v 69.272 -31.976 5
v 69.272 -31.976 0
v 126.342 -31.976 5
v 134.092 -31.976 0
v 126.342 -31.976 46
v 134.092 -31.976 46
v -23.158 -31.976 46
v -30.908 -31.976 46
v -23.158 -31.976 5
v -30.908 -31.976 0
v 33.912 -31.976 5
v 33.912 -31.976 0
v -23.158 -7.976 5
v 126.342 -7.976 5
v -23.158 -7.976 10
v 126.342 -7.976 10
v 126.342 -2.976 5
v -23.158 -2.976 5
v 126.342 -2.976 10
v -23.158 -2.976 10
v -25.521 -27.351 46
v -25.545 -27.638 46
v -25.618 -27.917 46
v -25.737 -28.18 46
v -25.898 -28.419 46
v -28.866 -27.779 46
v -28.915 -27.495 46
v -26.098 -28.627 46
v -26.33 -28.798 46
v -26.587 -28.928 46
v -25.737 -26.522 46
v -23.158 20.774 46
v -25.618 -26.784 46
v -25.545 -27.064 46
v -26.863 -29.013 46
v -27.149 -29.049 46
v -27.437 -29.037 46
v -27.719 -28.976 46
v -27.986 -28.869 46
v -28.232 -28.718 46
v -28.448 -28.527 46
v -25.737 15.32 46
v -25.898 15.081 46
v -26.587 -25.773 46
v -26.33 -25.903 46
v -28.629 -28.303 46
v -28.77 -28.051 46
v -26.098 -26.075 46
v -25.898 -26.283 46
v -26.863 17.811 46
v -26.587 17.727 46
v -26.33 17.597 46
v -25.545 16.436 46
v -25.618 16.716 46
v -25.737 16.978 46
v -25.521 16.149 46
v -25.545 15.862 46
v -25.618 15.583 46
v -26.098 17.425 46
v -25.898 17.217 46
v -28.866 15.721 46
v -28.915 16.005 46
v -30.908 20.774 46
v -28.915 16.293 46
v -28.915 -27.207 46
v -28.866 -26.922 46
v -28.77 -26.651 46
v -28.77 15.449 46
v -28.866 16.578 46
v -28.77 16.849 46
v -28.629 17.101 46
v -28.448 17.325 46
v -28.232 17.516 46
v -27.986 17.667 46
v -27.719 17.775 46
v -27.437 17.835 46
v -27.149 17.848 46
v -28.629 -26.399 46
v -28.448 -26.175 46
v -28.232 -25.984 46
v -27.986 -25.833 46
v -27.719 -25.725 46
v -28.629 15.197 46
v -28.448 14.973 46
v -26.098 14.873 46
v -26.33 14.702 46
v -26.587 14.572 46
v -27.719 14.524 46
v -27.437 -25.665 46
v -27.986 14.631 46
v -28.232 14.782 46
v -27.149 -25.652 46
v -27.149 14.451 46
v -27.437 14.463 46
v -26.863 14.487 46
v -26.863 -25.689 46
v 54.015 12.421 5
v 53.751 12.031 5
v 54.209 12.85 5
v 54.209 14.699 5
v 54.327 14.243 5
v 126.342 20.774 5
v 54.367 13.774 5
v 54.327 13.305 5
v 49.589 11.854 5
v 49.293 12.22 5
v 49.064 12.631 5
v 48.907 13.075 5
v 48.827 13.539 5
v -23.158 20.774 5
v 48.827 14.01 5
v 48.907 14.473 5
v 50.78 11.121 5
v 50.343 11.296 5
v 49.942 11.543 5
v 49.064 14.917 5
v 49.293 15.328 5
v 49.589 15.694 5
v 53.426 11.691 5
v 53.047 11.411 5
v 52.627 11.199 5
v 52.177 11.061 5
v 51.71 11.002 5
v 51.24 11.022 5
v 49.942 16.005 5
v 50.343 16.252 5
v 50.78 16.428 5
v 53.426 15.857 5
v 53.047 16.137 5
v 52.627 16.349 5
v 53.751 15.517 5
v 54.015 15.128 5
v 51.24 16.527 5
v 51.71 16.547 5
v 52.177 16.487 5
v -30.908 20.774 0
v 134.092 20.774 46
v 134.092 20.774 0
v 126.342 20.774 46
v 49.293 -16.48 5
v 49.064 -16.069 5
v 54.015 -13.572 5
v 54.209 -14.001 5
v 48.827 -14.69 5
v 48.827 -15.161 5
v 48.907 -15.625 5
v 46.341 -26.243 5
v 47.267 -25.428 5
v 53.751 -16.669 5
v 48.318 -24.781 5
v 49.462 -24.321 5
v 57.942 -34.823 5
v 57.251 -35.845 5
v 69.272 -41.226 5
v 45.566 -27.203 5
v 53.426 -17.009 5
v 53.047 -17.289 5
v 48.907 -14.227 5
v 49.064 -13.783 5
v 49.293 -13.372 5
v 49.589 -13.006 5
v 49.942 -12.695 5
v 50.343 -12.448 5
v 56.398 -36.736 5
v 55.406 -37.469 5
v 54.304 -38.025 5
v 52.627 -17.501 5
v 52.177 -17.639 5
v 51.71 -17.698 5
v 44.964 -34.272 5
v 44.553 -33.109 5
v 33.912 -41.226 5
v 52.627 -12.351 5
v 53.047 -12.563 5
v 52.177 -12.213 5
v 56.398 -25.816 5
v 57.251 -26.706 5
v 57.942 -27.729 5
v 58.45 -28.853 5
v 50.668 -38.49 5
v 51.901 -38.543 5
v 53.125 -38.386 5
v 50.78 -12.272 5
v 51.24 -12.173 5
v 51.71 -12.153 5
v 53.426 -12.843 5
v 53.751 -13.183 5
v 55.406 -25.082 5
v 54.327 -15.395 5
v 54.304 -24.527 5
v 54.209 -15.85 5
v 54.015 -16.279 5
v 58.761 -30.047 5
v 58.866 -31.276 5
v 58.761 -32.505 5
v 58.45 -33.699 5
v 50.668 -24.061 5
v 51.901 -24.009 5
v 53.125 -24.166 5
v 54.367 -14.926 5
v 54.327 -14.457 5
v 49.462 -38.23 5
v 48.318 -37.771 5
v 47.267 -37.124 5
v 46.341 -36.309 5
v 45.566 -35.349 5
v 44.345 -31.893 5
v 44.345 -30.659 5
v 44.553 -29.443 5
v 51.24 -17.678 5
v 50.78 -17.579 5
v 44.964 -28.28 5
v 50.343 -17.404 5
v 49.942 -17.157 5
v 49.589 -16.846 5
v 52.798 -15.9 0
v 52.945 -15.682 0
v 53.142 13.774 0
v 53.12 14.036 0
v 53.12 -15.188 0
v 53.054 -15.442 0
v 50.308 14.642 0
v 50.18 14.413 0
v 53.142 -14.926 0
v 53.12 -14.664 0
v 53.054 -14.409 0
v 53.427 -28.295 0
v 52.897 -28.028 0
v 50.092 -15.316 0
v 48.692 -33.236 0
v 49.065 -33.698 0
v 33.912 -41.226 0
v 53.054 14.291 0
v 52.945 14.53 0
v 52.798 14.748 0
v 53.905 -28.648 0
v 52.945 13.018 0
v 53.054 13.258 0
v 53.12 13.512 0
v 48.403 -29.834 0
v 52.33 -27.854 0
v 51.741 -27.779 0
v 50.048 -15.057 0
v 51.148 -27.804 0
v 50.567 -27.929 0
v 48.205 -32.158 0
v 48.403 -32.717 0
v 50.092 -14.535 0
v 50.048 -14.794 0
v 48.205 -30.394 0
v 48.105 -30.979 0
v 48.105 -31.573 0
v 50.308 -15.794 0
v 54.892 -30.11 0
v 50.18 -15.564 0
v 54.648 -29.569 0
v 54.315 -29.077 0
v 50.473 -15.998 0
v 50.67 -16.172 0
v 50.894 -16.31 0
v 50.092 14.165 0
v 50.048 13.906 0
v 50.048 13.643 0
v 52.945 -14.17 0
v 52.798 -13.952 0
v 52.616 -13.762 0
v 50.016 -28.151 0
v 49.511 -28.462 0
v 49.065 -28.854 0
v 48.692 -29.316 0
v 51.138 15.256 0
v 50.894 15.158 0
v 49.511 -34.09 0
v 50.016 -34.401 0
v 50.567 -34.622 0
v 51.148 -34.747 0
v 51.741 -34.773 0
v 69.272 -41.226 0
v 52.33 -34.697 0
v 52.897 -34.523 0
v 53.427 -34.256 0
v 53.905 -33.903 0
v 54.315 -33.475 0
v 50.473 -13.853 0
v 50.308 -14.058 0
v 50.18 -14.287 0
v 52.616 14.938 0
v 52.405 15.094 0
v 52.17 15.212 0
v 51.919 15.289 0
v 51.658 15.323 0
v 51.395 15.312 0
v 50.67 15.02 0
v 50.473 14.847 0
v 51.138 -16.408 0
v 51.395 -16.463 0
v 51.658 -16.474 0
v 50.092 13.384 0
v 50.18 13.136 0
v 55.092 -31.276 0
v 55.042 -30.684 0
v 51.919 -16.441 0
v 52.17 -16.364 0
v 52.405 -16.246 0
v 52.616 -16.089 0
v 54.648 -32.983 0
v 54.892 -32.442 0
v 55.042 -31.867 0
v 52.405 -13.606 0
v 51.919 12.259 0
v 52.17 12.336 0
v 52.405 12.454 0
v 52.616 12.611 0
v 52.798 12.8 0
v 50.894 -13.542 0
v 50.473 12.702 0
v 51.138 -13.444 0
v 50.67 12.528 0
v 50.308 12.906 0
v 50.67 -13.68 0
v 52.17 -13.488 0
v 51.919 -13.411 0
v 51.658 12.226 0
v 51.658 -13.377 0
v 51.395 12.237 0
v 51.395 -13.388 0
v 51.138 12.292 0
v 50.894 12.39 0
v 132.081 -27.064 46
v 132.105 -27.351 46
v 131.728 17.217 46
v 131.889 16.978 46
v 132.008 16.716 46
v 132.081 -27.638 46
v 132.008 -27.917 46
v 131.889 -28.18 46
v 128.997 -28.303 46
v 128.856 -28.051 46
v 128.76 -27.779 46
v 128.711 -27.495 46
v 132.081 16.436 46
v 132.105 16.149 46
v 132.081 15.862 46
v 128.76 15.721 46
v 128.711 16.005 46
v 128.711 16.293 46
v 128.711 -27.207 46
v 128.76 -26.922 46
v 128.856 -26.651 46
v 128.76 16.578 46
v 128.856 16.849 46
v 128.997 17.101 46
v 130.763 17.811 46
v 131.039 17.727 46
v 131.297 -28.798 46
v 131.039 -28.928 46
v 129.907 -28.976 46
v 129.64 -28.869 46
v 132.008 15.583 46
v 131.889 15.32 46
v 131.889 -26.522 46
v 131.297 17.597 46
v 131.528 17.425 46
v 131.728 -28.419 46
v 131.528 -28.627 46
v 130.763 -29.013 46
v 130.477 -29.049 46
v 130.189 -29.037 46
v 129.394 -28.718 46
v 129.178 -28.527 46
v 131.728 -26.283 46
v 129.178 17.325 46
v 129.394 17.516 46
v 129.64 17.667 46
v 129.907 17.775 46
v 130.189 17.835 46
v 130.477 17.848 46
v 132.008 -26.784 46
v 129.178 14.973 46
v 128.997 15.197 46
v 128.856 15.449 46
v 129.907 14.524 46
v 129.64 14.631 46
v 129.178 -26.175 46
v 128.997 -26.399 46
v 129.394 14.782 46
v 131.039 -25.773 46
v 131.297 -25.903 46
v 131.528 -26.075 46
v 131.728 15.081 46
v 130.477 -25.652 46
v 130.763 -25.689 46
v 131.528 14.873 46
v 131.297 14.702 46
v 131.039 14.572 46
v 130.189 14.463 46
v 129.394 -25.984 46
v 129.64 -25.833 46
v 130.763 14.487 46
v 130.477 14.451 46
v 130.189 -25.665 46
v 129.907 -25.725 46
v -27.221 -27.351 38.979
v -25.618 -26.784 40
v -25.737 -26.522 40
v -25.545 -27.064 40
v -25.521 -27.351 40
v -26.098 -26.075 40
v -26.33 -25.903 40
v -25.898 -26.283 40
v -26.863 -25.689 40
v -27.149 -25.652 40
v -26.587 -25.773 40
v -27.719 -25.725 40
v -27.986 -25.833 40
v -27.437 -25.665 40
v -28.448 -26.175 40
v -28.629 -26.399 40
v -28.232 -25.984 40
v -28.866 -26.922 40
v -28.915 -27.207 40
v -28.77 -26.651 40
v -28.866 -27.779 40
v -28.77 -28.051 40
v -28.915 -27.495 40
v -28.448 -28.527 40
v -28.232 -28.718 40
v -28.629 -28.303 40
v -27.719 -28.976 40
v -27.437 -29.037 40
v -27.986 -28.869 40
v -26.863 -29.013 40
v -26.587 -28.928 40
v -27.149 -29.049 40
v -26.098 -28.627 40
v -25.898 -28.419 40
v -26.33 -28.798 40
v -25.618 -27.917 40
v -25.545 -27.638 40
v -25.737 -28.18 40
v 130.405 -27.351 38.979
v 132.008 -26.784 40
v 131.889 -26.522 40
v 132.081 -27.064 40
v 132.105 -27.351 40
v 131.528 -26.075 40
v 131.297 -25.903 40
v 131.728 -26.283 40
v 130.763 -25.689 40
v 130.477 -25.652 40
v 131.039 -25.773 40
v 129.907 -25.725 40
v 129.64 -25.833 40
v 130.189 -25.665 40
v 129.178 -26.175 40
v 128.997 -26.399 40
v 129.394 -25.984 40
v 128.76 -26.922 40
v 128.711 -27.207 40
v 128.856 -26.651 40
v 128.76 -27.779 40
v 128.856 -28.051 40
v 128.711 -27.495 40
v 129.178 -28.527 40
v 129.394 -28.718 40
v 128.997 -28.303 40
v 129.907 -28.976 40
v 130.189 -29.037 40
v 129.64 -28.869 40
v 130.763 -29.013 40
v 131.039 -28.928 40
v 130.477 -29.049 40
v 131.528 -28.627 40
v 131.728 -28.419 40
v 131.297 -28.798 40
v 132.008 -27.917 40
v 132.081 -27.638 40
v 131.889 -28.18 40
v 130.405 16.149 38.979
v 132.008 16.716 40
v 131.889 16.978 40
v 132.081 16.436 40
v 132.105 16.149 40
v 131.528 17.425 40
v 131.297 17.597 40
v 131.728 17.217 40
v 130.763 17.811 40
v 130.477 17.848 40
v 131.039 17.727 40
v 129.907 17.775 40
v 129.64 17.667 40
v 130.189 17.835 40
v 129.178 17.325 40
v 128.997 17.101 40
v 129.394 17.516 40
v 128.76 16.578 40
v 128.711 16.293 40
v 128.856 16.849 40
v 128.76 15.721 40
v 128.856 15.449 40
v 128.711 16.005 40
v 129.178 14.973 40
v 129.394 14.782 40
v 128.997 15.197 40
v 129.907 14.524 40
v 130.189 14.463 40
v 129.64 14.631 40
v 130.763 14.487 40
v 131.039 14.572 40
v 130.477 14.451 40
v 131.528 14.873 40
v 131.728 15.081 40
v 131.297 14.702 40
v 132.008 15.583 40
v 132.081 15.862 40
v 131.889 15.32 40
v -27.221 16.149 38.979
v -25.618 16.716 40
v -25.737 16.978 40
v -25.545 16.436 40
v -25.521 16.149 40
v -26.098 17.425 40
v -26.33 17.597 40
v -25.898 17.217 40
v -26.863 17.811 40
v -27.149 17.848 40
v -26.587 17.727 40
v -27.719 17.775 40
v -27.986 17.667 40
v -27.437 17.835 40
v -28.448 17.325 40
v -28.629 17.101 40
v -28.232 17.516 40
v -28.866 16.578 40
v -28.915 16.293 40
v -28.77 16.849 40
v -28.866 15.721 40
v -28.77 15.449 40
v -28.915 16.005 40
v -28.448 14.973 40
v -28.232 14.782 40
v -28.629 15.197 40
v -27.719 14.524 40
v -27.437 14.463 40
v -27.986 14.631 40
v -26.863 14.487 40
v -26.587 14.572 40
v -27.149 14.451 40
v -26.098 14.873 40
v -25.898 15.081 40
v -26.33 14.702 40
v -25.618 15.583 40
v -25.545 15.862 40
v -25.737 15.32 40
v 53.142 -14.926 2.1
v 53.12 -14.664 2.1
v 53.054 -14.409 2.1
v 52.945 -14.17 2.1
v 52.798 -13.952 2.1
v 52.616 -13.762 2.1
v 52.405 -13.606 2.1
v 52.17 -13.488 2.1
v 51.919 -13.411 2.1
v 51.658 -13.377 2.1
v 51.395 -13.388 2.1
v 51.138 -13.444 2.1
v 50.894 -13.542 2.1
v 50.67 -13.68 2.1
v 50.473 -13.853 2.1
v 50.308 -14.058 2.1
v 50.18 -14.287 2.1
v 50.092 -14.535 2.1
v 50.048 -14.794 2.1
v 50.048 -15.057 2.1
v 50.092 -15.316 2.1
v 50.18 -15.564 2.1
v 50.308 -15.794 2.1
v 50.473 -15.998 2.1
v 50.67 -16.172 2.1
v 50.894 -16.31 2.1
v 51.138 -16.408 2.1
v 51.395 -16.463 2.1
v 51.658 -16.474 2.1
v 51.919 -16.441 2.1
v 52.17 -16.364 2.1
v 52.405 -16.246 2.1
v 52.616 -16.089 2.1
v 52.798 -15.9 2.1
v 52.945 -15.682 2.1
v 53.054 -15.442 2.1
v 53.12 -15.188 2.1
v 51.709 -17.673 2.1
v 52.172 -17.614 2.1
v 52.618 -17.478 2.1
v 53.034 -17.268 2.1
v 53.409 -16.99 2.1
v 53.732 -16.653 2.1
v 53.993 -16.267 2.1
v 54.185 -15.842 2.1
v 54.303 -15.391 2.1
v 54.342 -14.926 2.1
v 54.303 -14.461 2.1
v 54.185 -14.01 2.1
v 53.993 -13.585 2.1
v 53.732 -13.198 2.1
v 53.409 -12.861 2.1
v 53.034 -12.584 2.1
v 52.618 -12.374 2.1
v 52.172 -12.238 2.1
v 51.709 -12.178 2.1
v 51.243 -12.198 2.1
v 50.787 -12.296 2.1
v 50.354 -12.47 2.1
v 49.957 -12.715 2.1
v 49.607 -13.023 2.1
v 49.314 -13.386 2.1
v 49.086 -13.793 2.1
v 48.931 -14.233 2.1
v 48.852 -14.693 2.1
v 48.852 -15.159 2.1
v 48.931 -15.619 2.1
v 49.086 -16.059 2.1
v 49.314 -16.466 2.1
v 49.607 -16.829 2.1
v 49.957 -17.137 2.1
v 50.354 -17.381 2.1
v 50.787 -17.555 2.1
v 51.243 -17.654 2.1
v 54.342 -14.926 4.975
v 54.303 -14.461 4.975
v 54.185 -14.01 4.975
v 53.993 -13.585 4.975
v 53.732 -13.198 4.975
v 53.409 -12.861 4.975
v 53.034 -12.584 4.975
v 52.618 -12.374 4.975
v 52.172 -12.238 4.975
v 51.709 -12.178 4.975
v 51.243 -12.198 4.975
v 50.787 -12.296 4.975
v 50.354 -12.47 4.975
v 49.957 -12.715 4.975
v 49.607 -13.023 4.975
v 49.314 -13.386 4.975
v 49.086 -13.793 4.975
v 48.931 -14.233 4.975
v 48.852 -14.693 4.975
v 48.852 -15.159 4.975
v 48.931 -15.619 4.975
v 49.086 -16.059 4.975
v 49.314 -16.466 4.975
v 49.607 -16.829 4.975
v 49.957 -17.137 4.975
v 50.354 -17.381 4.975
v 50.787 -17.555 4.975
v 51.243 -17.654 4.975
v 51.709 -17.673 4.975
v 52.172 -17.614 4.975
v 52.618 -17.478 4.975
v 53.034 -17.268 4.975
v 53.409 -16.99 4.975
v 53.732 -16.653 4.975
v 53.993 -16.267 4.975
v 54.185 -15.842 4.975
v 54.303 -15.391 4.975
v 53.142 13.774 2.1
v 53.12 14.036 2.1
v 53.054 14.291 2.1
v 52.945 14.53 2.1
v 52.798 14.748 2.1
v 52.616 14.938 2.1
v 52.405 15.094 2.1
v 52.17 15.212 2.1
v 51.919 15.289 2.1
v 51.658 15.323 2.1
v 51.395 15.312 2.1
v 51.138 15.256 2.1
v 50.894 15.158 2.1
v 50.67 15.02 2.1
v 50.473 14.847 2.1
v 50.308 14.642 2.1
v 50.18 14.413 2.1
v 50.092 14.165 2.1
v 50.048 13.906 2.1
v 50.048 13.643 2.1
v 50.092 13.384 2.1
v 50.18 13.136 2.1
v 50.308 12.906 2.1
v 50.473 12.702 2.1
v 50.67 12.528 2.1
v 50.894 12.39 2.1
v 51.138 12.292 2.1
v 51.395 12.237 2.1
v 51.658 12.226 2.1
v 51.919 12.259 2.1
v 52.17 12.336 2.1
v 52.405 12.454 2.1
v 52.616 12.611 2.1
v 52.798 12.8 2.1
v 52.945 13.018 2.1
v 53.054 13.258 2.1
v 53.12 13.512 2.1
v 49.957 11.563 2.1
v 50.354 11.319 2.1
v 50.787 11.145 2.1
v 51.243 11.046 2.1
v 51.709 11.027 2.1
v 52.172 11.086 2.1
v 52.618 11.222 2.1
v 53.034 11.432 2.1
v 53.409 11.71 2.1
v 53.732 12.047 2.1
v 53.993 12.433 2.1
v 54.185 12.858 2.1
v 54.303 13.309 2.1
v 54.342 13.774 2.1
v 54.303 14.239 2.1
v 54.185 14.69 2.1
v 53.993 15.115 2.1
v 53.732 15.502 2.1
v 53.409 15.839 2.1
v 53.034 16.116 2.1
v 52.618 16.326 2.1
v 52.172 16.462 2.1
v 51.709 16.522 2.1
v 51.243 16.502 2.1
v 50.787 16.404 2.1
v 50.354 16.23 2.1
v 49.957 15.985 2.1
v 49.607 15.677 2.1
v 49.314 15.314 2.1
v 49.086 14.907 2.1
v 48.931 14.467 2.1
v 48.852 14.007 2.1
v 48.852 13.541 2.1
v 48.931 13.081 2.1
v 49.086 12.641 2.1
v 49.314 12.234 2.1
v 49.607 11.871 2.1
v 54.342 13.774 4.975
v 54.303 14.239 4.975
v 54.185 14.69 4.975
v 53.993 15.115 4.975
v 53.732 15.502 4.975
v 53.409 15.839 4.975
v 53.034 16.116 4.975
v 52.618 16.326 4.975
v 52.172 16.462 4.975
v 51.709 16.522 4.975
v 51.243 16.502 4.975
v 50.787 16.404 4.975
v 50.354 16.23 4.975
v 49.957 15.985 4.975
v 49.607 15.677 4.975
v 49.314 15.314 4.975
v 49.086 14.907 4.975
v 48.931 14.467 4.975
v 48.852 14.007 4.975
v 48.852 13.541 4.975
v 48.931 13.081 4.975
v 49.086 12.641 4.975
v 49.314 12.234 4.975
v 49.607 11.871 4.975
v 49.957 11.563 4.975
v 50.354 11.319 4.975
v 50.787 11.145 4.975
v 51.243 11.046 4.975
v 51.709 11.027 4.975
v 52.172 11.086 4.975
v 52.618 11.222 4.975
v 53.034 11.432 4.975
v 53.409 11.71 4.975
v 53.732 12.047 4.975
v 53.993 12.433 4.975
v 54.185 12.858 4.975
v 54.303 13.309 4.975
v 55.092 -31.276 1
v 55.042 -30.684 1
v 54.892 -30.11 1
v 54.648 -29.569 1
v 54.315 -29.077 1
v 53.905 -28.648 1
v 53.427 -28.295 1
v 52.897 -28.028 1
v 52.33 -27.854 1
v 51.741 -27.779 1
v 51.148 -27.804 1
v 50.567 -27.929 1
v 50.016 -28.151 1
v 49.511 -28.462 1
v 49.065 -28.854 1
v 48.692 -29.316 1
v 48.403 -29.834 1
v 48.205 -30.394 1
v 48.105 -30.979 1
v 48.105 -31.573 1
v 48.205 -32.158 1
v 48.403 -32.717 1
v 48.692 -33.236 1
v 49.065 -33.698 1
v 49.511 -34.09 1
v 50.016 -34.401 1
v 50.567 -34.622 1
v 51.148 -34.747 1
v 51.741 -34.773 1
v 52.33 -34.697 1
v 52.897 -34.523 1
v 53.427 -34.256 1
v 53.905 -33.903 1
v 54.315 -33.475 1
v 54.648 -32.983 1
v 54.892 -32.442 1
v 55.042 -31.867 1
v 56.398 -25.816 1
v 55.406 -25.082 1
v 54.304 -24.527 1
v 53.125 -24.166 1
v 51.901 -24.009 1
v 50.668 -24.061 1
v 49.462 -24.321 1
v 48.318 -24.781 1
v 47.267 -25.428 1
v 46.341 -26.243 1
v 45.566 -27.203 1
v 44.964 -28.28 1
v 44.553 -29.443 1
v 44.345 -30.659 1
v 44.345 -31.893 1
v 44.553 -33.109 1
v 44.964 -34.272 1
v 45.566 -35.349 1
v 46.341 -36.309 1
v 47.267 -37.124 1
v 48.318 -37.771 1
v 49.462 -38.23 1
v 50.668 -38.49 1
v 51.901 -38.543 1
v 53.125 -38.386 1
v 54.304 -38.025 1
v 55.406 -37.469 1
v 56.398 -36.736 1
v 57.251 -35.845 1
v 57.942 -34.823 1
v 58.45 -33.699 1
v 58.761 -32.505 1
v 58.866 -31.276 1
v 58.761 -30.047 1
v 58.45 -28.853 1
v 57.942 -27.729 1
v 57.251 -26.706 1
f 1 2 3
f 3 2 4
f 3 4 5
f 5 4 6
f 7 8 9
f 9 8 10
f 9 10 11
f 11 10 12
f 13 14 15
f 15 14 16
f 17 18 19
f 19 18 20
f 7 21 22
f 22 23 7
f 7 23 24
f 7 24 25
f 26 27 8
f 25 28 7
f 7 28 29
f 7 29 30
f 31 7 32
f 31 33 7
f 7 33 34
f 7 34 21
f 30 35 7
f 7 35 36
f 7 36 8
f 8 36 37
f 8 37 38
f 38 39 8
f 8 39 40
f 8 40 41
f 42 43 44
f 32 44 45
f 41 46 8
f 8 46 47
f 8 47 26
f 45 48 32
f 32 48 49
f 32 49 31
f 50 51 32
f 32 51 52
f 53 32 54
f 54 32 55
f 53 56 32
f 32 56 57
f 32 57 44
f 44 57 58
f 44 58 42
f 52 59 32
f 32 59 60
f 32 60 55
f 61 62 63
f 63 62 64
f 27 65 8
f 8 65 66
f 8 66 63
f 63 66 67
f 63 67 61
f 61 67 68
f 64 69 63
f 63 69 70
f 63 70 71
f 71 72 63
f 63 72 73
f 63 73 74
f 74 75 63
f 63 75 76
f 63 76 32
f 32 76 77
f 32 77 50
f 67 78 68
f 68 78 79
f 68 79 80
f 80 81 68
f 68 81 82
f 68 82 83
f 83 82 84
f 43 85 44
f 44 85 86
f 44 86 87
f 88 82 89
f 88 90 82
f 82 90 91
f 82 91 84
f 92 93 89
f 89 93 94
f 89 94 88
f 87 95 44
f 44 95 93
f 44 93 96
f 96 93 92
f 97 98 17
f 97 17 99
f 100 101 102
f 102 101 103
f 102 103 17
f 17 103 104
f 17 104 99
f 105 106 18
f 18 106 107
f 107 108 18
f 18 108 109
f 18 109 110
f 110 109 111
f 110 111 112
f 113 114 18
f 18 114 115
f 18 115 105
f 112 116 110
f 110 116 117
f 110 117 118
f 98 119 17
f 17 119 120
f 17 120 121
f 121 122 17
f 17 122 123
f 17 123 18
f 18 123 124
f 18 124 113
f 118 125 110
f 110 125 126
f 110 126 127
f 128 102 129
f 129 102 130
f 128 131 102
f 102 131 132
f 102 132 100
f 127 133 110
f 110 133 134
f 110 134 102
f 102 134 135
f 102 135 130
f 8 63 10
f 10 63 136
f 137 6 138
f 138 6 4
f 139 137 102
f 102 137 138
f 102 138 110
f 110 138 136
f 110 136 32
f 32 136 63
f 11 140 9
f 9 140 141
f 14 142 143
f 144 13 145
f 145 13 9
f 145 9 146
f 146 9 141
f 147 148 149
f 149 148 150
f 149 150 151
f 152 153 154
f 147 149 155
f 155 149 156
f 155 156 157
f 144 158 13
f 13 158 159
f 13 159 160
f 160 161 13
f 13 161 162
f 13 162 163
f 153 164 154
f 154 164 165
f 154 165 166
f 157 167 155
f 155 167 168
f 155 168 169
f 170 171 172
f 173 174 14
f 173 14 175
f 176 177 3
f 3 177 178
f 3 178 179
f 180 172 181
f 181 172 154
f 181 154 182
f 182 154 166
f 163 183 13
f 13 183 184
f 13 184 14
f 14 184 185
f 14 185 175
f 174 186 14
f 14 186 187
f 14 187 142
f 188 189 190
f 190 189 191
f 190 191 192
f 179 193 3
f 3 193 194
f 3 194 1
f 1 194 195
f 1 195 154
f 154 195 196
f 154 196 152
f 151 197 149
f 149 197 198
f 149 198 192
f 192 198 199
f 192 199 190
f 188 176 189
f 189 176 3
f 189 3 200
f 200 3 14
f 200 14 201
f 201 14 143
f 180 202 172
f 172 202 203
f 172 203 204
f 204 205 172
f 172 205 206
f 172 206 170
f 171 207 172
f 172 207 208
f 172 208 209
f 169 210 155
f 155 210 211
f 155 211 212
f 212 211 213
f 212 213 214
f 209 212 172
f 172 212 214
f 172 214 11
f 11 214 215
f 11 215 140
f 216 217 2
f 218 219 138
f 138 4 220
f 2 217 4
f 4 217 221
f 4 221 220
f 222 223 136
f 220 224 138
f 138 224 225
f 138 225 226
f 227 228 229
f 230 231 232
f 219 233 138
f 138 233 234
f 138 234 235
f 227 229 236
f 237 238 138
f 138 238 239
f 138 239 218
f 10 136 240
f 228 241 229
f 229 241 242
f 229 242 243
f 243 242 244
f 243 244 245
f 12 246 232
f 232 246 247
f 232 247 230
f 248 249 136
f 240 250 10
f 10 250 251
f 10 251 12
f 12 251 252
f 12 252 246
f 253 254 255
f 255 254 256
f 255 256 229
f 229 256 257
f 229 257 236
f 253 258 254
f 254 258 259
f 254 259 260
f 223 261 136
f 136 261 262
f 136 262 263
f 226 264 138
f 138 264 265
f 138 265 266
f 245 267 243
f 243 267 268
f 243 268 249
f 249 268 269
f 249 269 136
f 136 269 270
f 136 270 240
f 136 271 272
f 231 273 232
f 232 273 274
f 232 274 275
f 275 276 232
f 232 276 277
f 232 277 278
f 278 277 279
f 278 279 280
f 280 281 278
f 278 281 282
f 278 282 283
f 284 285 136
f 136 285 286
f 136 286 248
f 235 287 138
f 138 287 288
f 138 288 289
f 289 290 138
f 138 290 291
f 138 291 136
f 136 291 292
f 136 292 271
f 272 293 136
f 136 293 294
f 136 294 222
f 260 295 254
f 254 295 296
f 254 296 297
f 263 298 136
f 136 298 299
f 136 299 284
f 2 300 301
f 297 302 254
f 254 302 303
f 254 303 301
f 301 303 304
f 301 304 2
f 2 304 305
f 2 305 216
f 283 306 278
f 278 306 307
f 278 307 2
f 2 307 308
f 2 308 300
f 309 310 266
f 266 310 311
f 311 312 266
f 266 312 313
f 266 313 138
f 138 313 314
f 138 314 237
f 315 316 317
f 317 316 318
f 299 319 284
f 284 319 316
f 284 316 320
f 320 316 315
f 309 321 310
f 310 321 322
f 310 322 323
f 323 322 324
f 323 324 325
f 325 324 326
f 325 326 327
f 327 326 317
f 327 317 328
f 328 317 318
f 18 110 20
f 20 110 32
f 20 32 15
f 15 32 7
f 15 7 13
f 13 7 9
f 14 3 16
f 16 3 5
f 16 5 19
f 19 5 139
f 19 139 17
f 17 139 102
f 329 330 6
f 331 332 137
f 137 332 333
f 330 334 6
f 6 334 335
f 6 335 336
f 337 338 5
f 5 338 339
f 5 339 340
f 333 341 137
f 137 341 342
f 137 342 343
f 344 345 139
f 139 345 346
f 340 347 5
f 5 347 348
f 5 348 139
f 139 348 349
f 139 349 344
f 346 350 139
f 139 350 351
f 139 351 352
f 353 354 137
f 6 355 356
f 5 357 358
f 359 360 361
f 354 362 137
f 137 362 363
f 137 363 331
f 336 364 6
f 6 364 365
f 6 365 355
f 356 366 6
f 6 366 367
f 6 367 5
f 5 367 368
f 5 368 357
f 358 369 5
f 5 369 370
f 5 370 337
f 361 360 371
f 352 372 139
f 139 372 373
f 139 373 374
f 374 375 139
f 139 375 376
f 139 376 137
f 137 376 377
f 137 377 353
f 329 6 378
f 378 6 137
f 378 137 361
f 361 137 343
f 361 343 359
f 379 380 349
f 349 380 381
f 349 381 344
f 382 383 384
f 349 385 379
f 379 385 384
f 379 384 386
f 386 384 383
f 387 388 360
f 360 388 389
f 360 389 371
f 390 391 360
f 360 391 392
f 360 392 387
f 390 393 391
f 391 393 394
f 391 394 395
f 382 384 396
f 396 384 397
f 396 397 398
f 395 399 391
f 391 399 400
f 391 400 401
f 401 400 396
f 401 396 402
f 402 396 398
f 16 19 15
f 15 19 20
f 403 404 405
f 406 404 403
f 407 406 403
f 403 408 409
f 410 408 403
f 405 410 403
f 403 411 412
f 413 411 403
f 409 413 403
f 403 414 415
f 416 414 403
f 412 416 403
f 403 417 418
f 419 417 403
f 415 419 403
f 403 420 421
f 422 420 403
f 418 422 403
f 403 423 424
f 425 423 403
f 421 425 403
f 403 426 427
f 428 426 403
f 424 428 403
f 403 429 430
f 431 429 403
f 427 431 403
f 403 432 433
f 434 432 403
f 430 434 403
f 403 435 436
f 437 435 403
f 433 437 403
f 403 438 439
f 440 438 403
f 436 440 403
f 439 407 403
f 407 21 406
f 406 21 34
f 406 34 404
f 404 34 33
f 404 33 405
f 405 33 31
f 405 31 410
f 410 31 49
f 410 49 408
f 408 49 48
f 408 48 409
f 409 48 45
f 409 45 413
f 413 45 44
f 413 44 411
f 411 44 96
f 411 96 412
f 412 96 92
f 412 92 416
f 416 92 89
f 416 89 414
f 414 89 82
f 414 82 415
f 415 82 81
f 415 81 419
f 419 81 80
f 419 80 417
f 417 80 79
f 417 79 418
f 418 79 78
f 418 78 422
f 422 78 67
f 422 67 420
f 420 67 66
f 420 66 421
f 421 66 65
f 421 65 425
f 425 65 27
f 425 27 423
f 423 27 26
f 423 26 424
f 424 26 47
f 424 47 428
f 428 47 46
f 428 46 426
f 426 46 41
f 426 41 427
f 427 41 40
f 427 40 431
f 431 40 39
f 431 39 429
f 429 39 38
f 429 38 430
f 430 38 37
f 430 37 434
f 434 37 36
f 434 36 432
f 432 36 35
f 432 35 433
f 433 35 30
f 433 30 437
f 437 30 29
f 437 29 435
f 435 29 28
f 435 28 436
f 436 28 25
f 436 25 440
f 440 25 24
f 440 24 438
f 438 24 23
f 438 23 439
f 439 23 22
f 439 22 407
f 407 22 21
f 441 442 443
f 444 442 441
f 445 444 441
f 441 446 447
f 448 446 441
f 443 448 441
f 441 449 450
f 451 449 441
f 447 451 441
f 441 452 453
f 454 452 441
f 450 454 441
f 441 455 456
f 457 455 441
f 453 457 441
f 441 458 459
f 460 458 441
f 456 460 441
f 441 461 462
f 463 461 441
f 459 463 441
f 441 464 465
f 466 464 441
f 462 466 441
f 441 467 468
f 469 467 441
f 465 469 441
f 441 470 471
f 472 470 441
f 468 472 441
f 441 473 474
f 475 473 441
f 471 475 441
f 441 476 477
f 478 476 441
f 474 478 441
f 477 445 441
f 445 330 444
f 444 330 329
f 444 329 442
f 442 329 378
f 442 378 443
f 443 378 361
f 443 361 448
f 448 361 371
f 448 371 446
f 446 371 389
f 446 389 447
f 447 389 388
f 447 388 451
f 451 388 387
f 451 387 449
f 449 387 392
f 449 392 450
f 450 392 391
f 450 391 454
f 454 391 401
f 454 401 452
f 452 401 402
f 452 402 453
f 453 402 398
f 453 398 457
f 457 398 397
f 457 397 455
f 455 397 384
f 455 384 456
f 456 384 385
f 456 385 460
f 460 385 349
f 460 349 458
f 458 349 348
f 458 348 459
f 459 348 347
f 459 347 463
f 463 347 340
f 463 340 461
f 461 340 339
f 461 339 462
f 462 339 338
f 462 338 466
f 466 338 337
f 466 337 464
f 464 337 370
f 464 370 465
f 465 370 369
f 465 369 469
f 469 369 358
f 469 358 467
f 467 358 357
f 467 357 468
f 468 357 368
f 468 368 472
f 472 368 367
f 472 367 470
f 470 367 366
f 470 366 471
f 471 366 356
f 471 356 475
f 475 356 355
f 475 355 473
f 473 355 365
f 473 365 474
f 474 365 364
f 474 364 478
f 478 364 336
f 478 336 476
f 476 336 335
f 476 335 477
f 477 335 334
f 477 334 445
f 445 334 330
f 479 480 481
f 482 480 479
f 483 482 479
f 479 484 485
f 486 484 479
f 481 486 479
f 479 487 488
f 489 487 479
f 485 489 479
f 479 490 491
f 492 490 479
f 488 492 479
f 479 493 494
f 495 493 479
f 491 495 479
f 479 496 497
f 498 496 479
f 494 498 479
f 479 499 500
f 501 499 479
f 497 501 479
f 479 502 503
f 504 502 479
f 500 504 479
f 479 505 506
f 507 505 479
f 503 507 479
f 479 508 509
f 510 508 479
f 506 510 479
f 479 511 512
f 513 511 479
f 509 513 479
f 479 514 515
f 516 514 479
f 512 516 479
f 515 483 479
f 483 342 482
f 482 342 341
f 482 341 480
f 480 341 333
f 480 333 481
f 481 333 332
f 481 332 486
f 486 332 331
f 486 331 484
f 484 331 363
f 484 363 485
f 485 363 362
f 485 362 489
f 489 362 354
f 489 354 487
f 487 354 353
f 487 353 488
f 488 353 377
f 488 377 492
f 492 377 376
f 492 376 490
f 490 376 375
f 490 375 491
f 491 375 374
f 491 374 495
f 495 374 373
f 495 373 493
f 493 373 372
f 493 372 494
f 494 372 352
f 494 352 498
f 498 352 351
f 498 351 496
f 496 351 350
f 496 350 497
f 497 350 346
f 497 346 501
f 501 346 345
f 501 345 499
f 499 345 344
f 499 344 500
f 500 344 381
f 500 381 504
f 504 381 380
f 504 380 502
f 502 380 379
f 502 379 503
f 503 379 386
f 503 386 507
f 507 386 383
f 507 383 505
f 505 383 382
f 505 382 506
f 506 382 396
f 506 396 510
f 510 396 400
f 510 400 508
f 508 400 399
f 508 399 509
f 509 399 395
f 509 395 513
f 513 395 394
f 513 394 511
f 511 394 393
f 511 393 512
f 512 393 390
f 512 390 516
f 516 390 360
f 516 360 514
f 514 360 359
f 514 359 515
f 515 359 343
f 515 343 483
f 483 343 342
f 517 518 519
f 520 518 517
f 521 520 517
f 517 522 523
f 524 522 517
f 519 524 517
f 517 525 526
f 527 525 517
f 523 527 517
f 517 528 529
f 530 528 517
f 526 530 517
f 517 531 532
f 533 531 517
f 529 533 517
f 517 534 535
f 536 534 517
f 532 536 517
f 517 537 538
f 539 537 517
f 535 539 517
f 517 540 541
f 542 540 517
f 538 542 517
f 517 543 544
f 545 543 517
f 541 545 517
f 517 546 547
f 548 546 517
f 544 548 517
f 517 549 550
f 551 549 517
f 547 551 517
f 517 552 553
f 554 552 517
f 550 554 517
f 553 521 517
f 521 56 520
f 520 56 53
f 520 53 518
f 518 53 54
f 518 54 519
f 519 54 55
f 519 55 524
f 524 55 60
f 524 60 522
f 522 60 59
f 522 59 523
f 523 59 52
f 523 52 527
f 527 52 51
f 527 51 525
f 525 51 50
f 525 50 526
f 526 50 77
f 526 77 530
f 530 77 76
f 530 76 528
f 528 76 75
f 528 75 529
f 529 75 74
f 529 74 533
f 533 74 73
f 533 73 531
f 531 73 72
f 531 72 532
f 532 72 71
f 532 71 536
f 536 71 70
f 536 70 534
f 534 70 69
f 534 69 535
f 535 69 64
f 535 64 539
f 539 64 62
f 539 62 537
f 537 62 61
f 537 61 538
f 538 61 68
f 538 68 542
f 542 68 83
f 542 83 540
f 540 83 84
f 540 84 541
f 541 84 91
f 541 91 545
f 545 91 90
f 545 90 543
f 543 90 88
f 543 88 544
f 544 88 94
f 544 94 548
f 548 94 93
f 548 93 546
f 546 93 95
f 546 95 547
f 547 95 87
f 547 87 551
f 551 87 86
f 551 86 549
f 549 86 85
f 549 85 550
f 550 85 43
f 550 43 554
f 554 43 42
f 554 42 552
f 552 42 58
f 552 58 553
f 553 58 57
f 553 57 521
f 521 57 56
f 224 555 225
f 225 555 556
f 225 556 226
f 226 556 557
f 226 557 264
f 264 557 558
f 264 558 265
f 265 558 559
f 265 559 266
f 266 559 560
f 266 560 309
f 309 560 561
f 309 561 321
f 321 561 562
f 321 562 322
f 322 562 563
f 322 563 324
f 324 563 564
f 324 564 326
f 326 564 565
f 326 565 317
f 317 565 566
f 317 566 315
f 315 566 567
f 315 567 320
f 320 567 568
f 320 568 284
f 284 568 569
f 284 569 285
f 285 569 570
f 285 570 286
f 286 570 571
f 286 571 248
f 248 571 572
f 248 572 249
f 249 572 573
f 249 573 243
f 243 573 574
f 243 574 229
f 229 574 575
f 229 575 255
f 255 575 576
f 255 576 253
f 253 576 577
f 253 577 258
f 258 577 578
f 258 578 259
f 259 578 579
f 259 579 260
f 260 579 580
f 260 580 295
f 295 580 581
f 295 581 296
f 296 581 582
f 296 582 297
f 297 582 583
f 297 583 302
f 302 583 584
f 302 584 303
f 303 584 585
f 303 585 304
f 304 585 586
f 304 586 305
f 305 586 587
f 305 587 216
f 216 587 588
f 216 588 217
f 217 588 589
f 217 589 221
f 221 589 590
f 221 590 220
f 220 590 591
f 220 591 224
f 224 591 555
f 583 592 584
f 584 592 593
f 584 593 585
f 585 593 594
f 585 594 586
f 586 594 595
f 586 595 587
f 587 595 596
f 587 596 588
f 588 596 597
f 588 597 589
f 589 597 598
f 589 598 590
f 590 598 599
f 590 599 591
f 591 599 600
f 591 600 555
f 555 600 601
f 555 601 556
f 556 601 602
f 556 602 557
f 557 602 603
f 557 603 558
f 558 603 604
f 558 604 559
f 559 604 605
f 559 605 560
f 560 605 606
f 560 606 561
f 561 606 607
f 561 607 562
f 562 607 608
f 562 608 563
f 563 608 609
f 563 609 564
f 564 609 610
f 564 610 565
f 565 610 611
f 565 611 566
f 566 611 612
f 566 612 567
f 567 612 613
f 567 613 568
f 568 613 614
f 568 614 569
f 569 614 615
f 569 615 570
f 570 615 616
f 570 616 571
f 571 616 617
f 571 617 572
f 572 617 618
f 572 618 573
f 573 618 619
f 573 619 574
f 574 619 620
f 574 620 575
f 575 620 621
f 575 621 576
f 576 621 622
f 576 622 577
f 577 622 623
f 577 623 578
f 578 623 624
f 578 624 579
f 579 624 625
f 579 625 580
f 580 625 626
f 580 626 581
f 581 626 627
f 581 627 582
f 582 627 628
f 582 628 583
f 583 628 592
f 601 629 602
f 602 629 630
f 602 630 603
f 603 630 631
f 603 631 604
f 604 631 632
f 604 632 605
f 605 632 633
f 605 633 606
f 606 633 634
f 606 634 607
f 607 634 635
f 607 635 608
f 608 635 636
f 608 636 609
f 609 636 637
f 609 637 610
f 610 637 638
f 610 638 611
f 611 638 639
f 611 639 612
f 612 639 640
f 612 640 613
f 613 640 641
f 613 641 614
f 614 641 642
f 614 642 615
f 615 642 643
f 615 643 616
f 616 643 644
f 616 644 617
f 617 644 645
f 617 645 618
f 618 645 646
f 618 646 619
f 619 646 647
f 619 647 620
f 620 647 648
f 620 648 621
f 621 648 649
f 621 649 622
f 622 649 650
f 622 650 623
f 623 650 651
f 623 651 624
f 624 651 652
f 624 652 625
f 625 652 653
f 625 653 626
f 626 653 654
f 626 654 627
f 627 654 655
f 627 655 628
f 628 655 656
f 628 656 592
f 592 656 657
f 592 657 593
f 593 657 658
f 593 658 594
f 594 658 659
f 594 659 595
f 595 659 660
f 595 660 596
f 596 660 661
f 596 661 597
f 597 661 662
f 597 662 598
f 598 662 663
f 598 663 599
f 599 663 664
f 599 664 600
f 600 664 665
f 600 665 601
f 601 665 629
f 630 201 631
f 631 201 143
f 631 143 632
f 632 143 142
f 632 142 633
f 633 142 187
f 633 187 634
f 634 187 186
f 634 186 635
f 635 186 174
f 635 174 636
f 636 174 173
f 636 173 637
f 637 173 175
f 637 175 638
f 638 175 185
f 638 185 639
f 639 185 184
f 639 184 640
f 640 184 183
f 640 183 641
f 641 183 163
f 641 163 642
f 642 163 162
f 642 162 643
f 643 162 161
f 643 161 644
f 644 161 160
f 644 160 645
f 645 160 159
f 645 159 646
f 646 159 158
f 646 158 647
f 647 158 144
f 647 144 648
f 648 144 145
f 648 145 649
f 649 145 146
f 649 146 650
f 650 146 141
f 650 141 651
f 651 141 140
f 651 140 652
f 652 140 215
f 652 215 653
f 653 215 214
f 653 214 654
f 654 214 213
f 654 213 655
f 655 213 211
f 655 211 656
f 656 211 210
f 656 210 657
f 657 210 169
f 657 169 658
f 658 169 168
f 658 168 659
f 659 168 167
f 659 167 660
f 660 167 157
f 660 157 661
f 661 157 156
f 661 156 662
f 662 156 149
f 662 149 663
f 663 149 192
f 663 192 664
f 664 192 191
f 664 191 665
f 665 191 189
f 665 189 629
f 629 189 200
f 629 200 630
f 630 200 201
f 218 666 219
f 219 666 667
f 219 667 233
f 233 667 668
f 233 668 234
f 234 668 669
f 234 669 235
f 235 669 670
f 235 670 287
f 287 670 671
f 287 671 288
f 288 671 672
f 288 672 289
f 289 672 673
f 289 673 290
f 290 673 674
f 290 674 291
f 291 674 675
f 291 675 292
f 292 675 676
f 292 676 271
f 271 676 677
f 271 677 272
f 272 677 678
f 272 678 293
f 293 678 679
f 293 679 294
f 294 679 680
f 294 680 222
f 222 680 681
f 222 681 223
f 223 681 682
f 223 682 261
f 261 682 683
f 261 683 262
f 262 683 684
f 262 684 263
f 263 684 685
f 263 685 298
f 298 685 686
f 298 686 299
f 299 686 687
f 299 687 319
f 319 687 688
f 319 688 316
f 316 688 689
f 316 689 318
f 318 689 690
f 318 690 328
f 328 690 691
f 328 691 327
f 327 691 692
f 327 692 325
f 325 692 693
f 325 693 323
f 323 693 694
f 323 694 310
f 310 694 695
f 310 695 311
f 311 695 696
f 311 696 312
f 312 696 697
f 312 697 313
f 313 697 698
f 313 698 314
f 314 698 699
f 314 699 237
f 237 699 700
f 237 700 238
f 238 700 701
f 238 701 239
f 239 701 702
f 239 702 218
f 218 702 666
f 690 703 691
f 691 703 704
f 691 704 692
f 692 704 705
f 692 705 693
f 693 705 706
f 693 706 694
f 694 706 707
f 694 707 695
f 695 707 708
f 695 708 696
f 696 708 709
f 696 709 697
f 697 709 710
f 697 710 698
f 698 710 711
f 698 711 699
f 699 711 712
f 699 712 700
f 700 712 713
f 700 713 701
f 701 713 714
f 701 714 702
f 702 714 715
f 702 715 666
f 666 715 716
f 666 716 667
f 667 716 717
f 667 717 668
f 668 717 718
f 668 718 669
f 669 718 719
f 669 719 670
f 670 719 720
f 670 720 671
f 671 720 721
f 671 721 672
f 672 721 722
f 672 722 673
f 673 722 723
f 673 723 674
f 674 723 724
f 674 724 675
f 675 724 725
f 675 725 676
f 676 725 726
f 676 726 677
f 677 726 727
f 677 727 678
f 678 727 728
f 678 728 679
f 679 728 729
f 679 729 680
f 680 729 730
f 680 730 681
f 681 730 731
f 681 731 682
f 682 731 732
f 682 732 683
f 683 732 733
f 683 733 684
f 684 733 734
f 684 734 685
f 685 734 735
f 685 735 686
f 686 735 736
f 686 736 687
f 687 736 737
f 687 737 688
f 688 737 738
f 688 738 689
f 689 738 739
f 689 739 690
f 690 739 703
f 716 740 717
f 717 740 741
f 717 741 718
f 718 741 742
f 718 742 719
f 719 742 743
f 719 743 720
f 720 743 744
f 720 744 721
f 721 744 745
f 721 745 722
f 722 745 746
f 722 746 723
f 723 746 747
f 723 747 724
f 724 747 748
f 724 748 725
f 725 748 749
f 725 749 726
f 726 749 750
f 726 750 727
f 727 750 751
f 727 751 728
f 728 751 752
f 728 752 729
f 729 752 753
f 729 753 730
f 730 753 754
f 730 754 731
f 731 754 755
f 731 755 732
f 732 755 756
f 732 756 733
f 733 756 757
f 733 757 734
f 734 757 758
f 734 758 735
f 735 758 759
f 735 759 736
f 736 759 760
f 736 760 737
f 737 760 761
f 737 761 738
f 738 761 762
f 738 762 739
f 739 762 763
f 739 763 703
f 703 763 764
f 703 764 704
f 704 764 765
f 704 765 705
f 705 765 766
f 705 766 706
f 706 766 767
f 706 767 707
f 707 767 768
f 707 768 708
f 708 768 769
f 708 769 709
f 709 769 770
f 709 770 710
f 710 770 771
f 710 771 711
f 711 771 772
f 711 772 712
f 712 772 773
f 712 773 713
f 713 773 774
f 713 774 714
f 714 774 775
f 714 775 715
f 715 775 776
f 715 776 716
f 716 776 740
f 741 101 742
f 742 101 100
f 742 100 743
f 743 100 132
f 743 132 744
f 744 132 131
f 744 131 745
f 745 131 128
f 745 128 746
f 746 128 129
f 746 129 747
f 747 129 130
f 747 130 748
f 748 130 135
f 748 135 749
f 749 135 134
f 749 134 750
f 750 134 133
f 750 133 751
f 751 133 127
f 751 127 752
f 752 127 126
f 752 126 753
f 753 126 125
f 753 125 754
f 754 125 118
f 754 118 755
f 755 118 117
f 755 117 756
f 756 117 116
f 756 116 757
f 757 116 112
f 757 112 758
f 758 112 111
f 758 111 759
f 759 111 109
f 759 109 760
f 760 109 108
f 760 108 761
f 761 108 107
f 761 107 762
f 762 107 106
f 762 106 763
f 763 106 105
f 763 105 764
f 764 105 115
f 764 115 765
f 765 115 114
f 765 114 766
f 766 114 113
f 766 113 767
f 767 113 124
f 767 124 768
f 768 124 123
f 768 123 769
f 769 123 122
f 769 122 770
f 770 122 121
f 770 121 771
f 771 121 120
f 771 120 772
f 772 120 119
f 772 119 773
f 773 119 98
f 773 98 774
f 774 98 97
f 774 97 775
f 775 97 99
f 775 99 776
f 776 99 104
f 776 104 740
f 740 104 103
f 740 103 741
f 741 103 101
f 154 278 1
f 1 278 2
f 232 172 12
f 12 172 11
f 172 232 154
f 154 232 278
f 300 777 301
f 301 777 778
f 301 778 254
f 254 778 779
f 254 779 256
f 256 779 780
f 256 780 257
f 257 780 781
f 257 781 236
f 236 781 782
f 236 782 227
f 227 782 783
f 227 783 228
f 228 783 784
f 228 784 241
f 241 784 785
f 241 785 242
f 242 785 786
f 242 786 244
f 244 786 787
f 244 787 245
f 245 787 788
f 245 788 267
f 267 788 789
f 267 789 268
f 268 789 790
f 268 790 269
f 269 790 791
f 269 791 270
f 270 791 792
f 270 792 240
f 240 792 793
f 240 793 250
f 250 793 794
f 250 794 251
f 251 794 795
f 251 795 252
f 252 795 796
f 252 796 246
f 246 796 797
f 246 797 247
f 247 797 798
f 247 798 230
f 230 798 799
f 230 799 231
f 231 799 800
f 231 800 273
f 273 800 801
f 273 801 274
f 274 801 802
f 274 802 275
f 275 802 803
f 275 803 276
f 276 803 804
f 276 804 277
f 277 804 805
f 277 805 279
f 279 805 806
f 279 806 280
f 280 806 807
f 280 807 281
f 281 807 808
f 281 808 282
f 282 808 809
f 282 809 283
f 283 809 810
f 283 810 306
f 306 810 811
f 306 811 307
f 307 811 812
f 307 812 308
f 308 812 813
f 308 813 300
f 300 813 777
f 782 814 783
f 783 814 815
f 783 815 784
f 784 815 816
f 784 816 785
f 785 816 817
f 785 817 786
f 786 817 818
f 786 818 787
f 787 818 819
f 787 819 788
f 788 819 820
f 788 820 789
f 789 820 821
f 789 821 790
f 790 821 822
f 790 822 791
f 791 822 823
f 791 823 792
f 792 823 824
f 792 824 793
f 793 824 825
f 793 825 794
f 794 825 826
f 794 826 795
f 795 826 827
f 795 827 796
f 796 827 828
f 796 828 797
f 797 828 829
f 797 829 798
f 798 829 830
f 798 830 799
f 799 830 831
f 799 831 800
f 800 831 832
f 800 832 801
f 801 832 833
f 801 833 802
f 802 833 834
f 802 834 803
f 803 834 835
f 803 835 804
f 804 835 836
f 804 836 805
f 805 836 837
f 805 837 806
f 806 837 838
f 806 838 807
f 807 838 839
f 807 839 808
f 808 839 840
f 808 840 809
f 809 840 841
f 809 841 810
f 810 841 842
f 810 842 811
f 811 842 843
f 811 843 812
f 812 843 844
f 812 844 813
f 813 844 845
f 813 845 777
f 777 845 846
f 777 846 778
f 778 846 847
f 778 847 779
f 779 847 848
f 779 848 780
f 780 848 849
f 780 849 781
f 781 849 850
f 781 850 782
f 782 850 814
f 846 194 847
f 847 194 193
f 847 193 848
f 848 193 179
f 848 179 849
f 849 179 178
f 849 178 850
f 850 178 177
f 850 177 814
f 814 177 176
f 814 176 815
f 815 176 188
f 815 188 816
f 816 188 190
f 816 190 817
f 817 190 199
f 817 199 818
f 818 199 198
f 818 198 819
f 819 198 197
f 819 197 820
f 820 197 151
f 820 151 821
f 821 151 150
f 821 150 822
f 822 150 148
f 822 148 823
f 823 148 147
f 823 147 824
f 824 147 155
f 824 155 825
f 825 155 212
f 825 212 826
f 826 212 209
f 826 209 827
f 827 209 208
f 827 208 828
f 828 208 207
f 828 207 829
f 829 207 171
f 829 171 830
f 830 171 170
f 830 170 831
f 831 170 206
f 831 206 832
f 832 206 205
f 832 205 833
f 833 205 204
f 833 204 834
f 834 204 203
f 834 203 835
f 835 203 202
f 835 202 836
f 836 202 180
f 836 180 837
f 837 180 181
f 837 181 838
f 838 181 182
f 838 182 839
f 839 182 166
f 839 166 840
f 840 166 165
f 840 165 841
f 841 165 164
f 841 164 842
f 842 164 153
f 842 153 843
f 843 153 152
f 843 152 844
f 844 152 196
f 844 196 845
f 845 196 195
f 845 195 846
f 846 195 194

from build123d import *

# Parameters (mm, degrees)
ESQUISSE1_W                                        = 165
ESQUISSE1_H                                        = 52.75
BOSS_EXTRU_1_DEPTH                                 = 5
BOSS_EXTRU_2_DEPTH                                 = 41
ESQUISSE3_W                                        = 149.5
ESQUISSE3_H                                        = 5
ENL_V_MAT_EXTRU_1_DEPTH                            = 36
D_GAGEMENT_M31_D                                   = 3.4
D_GAGEMENT_M31_DEPTH                               = 6
D_GAGEMENT_M31_TIP                                 = 1.021463052
CHAMBRAGE_POUR_VIS_SIX_PANS_CREUX_2_COUNT          = 2
CHAMBRAGE_POUR_VIS_SIX_PANS_CREUX_2_PITCH          = 28.7
SKETCH7_W                                          = 35.36
SKETCH7_H                                          = 5
BOSS_EXTRUDE1_DEPTH                                = 9.25
CHAMBRAGE_POUR_VIS_T_TE_HEXAGONALE_M61_D           = 7
CHAMBRAGE_POUR_VIS_T_TE_HEXAGONALE_M61_CBORE_D     = 14.547
CHAMBRAGE_POUR_VIS_T_TE_HEXAGONALE_M61_CBORE_DEPTH = 4


with BuildPart() as part:
    # Esquisse1 → Boss.-Extru.1 (new body)
    with BuildSketch(Plane.XY):
        with Locations((51.592169311, -5.600810811)):
            Rectangle(ESQUISSE1_W, ESQUISSE1_H)
    extrude(amount=BOSS_EXTRU_1_DEPTH)

    # Esquisse2 → Boss.-Extru.2 (add)
    with BuildSketch(Plane.XY.offset(5)):
        Polygon((-30.907830689, 20.774189189), (-23.157830689, 20.774189189), (-23.157830689, -2.975810811), (126.342169311, -2.975810811), (126.342169311, 20.774189189), (134.092169311, 20.774189189), (134.092169311, -31.975810811), (126.342169311, -31.975810811), (126.342169311, -7.975810811), (-23.157830689, -7.975810811), (-23.157830689, -31.975810811), (-30.907830689, -31.975810811), align=None)
    extrude(amount=BOSS_EXTRU_2_DEPTH)

    # Esquisse3 → Enlèv. mat.-Extru.1 (cut)
    with BuildSketch(Plane.XY.offset(46)):
        with Locations((51.592169311, -5.475810811)):
            Rectangle(ESQUISSE3_W, ESQUISSE3_H)
    extrude(amount=-ENL_V_MAT_EXTRU_1_DEPTH, mode=Mode.SUBTRACT)

    # Dégagement M31
    with Locations(Plane.XY.offset(46)):
        with Locations((-27.220932929, 16.149189189), (130.405271551, 16.149189189), (130.405271551, -27.350810811), (-27.220932929, -27.350810811)):
            Hole(D_GAGEMENT_M31_D / 2, depth=D_GAGEMENT_M31_DEPTH)
            with Locations((0, 0, -(D_GAGEMENT_M31_DEPTH + D_GAGEMENT_M31_TIP / 2))):  # 118° drill point
                Cone(0, D_GAGEMENT_M31_D / 2, D_GAGEMENT_M31_TIP, mode=Mode.SUBTRACT)

    # Sketch5 → Chambrage pour vis à six pans creux M2.51 (revolve, cut)
    with BuildSketch(Plane(origin=(51.592169311, 13.774189189, 5), x_dir=(0, -1, 0), z_dir=(1, 0, 0))):
        Polygon((0, 0), (0, 5), (1.55, 5), (1.55, 2.9), (2.75, 2.9), (2.75, 0.025), (2.775, 0), align=None)
    chambrage_pour_vis_six_pans_creux_m2_5 = revolve(axis=Axis((51.592169311, 13.774189189, 11.35), (0, 0, -1)), mode=Mode.SUBTRACT)

    # Chambrage pour vis _ six pans creux  2: Chambrage pour vis à six pans creux M2.51 ×2
    with Locations(*[(0, -i * CHAMBRAGE_POUR_VIS_SIX_PANS_CREUX_2_PITCH, 0) for i in range(1, CHAMBRAGE_POUR_VIS_SIX_PANS_CREUX_2_COUNT)]):
        add(chambrage_pour_vis_six_pans_creux_m2_5, mode=Mode.SUBTRACT)

    # Sketch7 → Boss-Extrude1 (add)
    with BuildSketch(Plane.XZ.offset(31.975810811)):
        with Locations((51.592169311, 2.5)):
            Rectangle(SKETCH7_W, SKETCH7_H)
    extrude(amount=BOSS_EXTRUDE1_DEPTH)

    # Chambrage pour vis à tête hexagonale M61 (through all)
    with Locations(Plane.XY.offset(5)):
        with Locations((51.592169311, -31.275810811)):
            CounterBoreHole(CHAMBRAGE_POUR_VIS_T_TE_HEXAGONALE_M61_D / 2, CHAMBRAGE_POUR_VIS_T_TE_HEXAGONALE_M61_CBORE_D / 2, CHAMBRAGE_POUR_VIS_T_TE_HEXAGONALE_M61_CBORE_DEPTH)


solid = part.part
